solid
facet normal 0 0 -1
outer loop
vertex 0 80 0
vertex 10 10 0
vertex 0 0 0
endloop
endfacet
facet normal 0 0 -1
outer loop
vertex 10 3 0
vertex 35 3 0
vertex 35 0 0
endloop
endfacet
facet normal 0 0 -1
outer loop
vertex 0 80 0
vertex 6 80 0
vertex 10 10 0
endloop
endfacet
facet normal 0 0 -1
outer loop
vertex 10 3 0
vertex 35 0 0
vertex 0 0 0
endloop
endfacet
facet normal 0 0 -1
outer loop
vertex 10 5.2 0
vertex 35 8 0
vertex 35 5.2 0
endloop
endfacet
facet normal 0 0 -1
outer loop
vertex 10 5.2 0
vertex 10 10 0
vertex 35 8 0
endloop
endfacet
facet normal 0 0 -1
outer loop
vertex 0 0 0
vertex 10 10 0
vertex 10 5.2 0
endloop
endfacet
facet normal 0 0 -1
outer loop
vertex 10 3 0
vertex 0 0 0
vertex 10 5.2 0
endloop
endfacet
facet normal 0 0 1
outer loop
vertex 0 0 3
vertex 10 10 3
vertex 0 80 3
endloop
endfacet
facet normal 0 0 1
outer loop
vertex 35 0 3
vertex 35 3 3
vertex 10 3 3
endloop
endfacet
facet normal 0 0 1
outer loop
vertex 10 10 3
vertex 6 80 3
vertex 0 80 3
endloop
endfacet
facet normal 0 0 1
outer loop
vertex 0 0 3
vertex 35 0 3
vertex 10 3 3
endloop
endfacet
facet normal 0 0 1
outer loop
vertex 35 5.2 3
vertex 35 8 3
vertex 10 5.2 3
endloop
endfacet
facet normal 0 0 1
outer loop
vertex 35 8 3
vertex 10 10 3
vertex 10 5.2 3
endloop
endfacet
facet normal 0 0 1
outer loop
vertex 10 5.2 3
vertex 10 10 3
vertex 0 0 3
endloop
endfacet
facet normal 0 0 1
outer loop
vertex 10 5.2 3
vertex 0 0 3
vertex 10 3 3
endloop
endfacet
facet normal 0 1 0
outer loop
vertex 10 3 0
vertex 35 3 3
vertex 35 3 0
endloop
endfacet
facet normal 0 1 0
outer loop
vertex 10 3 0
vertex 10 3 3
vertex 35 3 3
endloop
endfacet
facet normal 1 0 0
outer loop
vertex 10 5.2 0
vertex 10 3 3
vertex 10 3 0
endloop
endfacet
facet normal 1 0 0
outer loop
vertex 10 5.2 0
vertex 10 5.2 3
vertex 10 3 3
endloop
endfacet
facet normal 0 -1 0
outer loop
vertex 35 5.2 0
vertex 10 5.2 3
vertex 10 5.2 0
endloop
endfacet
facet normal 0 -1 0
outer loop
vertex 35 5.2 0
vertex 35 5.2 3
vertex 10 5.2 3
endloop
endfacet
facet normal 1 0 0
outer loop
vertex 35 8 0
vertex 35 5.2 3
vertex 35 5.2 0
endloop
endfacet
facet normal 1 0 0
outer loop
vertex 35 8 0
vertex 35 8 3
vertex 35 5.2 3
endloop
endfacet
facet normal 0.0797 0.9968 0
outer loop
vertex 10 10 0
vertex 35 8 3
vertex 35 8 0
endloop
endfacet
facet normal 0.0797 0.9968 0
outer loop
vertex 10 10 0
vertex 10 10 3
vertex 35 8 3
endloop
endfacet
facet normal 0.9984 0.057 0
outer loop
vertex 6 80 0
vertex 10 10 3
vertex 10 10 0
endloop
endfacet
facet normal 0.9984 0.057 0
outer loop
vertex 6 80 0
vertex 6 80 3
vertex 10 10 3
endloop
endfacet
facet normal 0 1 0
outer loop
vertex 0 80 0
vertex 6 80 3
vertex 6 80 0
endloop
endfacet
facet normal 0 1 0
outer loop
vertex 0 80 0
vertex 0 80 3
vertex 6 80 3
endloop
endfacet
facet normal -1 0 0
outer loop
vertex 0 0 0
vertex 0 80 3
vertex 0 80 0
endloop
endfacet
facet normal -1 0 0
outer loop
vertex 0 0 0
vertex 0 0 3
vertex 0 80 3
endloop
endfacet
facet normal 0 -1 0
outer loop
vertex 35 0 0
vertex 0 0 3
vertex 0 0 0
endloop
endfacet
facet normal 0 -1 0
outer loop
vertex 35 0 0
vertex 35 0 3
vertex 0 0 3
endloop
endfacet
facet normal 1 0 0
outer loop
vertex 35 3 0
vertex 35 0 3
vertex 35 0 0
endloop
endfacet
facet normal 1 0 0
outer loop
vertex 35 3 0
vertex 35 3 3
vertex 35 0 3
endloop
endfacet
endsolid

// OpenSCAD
//ring = 30

linear_extrude(height=3) {
    polygon(points=[
        [0,0],[35,0],[35,3],[10,3],[10,5.2],[35,5.2],[35,8],
        [10,10],
    
    
        [6,80],[0,80] 
    ]);
}
